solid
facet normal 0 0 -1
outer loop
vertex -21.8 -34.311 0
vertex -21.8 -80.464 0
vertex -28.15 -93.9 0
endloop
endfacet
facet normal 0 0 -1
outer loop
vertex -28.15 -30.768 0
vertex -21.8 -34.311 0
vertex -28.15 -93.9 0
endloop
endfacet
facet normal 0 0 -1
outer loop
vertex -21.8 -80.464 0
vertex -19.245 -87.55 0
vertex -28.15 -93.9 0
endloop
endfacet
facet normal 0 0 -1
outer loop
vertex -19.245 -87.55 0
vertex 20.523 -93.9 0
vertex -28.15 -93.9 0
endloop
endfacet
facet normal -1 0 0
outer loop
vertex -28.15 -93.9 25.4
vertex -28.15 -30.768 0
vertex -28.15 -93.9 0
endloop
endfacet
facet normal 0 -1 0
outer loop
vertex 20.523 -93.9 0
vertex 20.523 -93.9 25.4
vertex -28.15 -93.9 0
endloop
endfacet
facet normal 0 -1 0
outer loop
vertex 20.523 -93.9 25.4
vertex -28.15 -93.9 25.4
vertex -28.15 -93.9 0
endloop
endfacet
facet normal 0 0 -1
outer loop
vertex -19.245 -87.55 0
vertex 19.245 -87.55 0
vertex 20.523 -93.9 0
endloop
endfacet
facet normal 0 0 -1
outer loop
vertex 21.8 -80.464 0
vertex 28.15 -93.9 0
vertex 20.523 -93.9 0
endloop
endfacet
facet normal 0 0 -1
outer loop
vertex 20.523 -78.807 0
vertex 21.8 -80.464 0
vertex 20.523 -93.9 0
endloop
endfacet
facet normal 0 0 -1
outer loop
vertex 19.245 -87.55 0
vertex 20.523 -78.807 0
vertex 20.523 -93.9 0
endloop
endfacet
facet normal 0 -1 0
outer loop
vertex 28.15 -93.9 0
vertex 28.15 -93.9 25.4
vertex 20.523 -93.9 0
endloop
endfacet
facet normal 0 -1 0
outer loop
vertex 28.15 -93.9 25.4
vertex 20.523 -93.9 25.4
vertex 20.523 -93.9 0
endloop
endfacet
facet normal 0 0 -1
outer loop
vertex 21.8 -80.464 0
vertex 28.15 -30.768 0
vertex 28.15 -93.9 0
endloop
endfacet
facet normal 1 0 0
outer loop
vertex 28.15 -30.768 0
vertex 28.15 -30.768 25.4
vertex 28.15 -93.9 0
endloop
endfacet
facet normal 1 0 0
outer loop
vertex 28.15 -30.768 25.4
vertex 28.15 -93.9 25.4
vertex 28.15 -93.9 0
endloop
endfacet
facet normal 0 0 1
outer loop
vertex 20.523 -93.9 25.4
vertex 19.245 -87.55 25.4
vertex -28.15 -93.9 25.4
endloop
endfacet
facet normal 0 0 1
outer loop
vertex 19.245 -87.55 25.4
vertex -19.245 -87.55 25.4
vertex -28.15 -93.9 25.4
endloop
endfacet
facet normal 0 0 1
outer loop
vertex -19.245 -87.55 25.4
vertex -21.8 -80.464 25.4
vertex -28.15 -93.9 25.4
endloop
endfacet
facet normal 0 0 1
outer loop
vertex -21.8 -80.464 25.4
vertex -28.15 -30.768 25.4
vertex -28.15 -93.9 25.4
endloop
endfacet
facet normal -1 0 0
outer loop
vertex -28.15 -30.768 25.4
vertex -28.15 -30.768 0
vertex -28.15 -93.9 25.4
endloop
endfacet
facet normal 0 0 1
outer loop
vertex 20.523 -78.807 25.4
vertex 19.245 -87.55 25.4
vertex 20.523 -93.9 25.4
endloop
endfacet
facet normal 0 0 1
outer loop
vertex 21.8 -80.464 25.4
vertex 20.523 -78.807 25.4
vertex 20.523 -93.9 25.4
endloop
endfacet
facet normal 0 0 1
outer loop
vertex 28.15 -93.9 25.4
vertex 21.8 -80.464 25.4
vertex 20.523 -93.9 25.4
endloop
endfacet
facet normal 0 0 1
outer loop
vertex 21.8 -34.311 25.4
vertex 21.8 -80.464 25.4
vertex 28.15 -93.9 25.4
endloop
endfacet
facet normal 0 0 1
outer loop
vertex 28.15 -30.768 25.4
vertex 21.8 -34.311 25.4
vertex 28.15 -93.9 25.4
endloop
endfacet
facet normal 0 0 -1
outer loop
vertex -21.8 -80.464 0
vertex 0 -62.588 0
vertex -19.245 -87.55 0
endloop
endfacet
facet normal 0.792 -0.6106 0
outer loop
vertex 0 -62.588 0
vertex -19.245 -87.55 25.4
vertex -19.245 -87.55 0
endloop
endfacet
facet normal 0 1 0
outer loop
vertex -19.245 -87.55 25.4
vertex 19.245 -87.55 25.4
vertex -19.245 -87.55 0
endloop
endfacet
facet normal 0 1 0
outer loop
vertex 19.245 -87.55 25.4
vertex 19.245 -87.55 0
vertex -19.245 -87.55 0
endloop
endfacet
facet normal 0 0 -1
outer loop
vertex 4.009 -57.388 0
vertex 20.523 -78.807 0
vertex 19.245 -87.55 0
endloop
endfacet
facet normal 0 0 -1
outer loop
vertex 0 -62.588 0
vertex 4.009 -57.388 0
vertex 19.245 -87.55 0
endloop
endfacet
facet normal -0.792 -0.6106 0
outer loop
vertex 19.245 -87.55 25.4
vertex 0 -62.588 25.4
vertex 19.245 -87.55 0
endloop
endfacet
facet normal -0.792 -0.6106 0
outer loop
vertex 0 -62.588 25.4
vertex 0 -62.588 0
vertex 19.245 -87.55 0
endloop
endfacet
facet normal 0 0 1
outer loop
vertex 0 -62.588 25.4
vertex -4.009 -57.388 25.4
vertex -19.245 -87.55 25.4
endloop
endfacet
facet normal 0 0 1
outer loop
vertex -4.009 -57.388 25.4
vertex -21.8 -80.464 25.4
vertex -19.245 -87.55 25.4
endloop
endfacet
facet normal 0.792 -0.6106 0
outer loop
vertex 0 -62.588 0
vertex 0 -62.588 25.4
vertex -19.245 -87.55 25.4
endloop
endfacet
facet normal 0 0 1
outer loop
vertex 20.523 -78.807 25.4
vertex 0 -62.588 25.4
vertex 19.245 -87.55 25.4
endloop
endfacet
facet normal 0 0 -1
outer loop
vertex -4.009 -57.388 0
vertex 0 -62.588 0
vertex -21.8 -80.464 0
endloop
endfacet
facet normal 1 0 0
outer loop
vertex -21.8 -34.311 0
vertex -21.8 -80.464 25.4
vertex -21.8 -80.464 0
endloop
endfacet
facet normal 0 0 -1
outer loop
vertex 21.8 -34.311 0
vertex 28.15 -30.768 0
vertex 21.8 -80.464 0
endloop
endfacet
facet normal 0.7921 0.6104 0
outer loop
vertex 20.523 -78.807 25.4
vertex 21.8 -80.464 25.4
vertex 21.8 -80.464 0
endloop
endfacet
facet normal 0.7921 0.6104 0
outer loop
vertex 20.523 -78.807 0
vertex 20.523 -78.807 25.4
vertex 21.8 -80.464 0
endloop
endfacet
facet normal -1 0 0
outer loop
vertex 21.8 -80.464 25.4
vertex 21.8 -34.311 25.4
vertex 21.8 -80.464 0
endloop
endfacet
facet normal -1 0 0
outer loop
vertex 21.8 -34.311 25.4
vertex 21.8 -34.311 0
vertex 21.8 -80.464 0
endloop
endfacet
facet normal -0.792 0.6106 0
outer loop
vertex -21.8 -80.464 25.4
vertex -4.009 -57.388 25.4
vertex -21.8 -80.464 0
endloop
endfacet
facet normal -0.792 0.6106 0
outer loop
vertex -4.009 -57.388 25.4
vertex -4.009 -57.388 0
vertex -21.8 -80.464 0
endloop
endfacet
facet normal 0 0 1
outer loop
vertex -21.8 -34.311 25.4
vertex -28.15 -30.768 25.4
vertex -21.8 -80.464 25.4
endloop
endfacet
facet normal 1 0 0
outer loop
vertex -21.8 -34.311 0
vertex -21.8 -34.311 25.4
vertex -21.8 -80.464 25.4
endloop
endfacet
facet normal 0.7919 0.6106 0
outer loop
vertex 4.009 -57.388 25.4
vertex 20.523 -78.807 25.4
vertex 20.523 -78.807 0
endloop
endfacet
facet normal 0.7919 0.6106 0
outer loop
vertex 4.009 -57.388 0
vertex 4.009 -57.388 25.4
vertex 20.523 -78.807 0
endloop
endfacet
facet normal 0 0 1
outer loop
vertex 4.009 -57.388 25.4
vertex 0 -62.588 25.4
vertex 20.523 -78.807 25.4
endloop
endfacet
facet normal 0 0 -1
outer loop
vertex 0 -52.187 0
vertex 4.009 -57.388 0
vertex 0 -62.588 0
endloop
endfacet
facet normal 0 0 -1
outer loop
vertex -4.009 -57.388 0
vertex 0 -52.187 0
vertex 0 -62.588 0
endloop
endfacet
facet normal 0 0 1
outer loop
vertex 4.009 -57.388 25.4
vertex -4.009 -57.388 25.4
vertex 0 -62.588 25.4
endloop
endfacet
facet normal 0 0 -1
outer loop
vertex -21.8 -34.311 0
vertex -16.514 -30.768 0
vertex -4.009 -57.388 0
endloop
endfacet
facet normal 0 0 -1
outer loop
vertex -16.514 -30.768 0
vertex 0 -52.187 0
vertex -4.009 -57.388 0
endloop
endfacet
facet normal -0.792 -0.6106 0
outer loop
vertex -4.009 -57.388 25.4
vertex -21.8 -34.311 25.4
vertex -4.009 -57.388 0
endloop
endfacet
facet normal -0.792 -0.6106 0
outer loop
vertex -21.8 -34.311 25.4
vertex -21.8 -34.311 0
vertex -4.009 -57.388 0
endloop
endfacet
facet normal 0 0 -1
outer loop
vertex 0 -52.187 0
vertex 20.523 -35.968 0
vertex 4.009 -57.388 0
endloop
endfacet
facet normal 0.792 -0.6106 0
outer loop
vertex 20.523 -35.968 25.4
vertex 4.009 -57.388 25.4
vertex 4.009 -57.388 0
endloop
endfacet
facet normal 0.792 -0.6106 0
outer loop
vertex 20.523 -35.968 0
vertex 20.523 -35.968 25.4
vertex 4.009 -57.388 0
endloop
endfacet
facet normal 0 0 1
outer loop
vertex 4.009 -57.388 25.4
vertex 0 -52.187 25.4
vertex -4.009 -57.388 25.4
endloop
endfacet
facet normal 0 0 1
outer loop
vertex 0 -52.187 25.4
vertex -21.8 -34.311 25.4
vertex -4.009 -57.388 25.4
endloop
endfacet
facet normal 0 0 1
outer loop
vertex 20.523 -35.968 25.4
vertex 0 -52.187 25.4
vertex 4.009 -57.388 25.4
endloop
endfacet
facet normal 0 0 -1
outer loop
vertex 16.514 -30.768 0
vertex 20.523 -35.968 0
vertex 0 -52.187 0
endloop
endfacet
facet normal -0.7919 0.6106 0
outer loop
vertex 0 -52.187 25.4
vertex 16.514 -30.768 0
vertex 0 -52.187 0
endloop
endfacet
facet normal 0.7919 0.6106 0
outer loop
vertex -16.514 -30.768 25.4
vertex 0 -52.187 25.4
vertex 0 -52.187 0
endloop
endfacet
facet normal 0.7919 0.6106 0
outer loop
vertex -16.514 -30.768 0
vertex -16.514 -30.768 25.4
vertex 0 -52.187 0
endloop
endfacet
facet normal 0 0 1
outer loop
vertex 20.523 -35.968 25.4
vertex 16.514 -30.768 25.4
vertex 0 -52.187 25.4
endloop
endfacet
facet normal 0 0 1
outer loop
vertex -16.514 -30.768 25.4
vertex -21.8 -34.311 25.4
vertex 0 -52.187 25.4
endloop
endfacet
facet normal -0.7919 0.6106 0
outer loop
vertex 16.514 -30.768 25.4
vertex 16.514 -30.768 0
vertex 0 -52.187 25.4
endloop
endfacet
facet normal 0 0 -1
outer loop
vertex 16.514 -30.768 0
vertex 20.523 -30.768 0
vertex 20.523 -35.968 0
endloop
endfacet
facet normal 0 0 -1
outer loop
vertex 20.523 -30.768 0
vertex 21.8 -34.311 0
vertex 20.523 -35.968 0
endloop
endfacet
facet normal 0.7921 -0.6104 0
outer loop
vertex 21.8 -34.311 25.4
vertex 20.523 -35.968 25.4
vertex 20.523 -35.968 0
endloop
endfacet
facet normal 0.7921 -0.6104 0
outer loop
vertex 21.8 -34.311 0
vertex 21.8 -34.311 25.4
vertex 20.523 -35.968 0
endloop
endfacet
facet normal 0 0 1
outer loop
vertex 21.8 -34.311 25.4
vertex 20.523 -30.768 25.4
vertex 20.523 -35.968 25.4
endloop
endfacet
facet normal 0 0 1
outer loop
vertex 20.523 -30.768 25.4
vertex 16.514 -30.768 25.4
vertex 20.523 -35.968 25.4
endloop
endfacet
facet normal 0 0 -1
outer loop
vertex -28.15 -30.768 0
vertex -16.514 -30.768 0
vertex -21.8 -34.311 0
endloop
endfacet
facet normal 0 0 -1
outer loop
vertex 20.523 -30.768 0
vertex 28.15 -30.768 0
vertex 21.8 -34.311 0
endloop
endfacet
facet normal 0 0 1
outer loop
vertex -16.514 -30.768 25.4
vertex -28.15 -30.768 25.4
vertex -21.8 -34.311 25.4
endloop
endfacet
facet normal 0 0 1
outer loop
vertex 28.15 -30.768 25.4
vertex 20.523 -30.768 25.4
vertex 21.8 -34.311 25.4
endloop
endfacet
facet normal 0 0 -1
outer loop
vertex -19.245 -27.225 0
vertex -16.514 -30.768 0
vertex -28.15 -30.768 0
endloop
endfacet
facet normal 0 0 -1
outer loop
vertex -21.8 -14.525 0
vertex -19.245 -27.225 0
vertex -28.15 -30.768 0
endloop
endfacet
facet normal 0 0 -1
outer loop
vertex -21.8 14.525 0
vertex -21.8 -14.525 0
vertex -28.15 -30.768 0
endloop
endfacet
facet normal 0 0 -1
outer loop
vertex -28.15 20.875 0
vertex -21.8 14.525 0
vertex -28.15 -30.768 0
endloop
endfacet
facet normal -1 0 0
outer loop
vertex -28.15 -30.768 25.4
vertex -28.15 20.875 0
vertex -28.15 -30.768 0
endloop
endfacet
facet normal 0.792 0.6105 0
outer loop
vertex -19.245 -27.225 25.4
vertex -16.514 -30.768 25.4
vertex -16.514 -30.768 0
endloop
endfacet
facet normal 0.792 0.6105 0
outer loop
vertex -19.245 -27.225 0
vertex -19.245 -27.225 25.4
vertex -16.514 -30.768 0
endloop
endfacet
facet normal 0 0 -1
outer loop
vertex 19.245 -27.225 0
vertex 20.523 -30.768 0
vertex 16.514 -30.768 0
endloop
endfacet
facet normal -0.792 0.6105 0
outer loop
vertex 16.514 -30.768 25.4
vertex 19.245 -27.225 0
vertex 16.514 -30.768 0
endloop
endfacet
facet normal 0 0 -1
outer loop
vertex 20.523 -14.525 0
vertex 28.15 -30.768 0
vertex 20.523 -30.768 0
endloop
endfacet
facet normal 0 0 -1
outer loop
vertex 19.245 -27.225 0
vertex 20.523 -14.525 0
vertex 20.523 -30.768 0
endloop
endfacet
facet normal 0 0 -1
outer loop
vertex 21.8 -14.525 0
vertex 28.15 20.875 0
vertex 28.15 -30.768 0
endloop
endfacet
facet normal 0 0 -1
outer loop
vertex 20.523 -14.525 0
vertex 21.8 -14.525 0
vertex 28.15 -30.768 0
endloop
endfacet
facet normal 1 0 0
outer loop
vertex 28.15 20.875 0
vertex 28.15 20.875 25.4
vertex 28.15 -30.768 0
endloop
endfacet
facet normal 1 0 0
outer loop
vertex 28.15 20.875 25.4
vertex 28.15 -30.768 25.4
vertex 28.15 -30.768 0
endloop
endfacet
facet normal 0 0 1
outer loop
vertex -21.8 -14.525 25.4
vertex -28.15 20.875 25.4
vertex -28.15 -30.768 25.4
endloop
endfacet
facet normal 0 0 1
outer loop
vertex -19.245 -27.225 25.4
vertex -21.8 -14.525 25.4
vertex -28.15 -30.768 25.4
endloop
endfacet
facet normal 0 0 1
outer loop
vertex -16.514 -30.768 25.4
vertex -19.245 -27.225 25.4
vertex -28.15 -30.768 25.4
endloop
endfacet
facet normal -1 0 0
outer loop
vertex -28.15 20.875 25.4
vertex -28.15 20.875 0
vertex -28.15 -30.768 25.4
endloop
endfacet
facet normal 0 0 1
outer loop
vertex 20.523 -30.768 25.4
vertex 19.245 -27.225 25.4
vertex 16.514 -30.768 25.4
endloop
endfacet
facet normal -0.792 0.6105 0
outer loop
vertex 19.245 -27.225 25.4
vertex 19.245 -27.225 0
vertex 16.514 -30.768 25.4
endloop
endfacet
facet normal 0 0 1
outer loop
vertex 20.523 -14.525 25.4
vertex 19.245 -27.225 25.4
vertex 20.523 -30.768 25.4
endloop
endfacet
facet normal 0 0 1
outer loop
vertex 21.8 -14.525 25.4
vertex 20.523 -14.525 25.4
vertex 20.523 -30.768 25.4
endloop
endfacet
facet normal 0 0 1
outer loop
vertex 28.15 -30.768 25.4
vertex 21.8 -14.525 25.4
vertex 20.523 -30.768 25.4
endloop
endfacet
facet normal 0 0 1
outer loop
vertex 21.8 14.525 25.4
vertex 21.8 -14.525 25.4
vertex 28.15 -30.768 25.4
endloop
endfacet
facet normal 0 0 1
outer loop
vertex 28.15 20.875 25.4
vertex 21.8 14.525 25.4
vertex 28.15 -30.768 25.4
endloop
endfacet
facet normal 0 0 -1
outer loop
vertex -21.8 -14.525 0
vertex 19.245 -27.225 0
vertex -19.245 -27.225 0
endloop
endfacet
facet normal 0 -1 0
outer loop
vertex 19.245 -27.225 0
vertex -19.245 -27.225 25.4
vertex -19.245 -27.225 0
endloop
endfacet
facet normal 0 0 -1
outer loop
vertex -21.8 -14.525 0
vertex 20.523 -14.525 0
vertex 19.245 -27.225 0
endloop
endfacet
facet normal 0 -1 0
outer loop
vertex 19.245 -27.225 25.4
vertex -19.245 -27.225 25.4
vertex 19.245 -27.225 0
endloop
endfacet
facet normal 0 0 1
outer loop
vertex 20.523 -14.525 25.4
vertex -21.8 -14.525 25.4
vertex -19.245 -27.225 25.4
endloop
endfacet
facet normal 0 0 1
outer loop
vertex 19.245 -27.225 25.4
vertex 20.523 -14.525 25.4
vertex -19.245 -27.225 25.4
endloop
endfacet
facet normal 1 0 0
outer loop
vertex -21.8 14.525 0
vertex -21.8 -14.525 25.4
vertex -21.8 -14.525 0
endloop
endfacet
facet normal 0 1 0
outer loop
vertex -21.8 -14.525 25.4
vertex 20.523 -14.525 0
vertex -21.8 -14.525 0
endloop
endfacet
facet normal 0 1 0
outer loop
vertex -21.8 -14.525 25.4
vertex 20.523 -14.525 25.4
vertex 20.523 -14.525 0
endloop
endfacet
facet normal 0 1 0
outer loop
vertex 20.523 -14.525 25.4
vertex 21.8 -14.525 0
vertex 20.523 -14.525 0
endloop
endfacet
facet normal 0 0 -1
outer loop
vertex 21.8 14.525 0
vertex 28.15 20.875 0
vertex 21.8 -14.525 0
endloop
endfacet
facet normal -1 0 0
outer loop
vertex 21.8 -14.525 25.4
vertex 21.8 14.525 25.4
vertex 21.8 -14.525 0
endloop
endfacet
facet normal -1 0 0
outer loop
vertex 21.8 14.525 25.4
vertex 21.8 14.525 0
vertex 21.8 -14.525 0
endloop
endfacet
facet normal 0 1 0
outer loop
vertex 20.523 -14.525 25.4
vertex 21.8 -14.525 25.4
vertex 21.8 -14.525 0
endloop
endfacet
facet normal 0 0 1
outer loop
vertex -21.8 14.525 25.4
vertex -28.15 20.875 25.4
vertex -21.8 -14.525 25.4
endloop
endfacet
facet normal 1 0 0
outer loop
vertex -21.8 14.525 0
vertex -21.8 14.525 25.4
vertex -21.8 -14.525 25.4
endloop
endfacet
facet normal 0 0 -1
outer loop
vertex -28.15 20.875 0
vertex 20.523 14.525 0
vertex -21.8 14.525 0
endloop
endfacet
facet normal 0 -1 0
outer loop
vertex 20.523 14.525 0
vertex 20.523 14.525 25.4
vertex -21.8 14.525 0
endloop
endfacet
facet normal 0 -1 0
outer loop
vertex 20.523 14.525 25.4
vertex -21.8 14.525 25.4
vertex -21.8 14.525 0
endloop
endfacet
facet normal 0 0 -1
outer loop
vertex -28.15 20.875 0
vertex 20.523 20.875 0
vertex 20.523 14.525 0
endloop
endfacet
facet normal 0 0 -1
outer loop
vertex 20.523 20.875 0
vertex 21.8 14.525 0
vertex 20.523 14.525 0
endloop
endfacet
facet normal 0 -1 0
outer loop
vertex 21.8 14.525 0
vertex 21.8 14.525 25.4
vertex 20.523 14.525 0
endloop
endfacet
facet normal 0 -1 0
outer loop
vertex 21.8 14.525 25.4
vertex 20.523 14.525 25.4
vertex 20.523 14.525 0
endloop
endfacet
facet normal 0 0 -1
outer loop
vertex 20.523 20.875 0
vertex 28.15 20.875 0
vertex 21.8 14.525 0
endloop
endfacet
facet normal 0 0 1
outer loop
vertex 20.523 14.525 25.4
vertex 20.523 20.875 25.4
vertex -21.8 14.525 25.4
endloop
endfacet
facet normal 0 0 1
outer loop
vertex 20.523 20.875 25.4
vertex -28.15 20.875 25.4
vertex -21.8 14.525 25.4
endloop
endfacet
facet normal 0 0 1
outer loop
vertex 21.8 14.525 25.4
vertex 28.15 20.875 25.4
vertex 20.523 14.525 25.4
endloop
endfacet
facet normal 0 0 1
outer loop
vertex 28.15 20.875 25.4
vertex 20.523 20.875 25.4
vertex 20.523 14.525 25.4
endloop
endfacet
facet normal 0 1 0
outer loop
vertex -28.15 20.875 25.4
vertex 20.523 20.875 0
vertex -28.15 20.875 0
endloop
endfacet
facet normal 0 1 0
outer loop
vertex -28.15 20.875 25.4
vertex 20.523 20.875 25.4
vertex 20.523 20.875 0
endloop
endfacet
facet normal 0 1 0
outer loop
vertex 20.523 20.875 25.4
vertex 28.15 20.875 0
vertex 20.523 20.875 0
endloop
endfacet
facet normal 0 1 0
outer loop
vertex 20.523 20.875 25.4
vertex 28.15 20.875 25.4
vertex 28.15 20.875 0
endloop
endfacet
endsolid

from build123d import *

# Parameters (mm, degrees)
SKETCH1_W           = 43.599999922
SKETCH1_H           = 29.050000066
BOSS_EXTRUDE1_DEPTH = 25.4


with BuildPart() as part:
    # Sketch1 → Boss-Extrude1 (new body)
    with BuildSketch(Plane.XY):
        Polygon((-28.149999961, -20.875000033), (-28.149999961, 20.875000033), (28.149999961, 20.875000033), (28.149999961, -20.875000033), (28.149999961, -93.900000033), (-28.149999961, -93.900000033), align=None)
        Rectangle(SKETCH1_W, SKETCH1_H, mode=Mode.SUBTRACT)
        Polygon((-19.245298339, -27.225000033), (0, -52.187485168), (19.245298339, -27.225000033), align=None, mode=Mode.SUBTRACT)
        Polygon((21.799999961, -34.311404785), (4.009049455, -57.387500033), (21.799999961, -80.463595281), align=None, mode=Mode.SUBTRACT)
        Polygon((-4.009049455, -57.387500033), (-21.799999961, -80.463595281), (-21.799999961, -34.311404785), align=None, mode=Mode.SUBTRACT)
        Polygon((0, -62.587514898), (-19.245298339, -87.550000033), (19.245298339, -87.550000033), align=None, mode=Mode.SUBTRACT)
    extrude(amount=BOSS_EXTRUDE1_DEPTH)


solid = part.part
